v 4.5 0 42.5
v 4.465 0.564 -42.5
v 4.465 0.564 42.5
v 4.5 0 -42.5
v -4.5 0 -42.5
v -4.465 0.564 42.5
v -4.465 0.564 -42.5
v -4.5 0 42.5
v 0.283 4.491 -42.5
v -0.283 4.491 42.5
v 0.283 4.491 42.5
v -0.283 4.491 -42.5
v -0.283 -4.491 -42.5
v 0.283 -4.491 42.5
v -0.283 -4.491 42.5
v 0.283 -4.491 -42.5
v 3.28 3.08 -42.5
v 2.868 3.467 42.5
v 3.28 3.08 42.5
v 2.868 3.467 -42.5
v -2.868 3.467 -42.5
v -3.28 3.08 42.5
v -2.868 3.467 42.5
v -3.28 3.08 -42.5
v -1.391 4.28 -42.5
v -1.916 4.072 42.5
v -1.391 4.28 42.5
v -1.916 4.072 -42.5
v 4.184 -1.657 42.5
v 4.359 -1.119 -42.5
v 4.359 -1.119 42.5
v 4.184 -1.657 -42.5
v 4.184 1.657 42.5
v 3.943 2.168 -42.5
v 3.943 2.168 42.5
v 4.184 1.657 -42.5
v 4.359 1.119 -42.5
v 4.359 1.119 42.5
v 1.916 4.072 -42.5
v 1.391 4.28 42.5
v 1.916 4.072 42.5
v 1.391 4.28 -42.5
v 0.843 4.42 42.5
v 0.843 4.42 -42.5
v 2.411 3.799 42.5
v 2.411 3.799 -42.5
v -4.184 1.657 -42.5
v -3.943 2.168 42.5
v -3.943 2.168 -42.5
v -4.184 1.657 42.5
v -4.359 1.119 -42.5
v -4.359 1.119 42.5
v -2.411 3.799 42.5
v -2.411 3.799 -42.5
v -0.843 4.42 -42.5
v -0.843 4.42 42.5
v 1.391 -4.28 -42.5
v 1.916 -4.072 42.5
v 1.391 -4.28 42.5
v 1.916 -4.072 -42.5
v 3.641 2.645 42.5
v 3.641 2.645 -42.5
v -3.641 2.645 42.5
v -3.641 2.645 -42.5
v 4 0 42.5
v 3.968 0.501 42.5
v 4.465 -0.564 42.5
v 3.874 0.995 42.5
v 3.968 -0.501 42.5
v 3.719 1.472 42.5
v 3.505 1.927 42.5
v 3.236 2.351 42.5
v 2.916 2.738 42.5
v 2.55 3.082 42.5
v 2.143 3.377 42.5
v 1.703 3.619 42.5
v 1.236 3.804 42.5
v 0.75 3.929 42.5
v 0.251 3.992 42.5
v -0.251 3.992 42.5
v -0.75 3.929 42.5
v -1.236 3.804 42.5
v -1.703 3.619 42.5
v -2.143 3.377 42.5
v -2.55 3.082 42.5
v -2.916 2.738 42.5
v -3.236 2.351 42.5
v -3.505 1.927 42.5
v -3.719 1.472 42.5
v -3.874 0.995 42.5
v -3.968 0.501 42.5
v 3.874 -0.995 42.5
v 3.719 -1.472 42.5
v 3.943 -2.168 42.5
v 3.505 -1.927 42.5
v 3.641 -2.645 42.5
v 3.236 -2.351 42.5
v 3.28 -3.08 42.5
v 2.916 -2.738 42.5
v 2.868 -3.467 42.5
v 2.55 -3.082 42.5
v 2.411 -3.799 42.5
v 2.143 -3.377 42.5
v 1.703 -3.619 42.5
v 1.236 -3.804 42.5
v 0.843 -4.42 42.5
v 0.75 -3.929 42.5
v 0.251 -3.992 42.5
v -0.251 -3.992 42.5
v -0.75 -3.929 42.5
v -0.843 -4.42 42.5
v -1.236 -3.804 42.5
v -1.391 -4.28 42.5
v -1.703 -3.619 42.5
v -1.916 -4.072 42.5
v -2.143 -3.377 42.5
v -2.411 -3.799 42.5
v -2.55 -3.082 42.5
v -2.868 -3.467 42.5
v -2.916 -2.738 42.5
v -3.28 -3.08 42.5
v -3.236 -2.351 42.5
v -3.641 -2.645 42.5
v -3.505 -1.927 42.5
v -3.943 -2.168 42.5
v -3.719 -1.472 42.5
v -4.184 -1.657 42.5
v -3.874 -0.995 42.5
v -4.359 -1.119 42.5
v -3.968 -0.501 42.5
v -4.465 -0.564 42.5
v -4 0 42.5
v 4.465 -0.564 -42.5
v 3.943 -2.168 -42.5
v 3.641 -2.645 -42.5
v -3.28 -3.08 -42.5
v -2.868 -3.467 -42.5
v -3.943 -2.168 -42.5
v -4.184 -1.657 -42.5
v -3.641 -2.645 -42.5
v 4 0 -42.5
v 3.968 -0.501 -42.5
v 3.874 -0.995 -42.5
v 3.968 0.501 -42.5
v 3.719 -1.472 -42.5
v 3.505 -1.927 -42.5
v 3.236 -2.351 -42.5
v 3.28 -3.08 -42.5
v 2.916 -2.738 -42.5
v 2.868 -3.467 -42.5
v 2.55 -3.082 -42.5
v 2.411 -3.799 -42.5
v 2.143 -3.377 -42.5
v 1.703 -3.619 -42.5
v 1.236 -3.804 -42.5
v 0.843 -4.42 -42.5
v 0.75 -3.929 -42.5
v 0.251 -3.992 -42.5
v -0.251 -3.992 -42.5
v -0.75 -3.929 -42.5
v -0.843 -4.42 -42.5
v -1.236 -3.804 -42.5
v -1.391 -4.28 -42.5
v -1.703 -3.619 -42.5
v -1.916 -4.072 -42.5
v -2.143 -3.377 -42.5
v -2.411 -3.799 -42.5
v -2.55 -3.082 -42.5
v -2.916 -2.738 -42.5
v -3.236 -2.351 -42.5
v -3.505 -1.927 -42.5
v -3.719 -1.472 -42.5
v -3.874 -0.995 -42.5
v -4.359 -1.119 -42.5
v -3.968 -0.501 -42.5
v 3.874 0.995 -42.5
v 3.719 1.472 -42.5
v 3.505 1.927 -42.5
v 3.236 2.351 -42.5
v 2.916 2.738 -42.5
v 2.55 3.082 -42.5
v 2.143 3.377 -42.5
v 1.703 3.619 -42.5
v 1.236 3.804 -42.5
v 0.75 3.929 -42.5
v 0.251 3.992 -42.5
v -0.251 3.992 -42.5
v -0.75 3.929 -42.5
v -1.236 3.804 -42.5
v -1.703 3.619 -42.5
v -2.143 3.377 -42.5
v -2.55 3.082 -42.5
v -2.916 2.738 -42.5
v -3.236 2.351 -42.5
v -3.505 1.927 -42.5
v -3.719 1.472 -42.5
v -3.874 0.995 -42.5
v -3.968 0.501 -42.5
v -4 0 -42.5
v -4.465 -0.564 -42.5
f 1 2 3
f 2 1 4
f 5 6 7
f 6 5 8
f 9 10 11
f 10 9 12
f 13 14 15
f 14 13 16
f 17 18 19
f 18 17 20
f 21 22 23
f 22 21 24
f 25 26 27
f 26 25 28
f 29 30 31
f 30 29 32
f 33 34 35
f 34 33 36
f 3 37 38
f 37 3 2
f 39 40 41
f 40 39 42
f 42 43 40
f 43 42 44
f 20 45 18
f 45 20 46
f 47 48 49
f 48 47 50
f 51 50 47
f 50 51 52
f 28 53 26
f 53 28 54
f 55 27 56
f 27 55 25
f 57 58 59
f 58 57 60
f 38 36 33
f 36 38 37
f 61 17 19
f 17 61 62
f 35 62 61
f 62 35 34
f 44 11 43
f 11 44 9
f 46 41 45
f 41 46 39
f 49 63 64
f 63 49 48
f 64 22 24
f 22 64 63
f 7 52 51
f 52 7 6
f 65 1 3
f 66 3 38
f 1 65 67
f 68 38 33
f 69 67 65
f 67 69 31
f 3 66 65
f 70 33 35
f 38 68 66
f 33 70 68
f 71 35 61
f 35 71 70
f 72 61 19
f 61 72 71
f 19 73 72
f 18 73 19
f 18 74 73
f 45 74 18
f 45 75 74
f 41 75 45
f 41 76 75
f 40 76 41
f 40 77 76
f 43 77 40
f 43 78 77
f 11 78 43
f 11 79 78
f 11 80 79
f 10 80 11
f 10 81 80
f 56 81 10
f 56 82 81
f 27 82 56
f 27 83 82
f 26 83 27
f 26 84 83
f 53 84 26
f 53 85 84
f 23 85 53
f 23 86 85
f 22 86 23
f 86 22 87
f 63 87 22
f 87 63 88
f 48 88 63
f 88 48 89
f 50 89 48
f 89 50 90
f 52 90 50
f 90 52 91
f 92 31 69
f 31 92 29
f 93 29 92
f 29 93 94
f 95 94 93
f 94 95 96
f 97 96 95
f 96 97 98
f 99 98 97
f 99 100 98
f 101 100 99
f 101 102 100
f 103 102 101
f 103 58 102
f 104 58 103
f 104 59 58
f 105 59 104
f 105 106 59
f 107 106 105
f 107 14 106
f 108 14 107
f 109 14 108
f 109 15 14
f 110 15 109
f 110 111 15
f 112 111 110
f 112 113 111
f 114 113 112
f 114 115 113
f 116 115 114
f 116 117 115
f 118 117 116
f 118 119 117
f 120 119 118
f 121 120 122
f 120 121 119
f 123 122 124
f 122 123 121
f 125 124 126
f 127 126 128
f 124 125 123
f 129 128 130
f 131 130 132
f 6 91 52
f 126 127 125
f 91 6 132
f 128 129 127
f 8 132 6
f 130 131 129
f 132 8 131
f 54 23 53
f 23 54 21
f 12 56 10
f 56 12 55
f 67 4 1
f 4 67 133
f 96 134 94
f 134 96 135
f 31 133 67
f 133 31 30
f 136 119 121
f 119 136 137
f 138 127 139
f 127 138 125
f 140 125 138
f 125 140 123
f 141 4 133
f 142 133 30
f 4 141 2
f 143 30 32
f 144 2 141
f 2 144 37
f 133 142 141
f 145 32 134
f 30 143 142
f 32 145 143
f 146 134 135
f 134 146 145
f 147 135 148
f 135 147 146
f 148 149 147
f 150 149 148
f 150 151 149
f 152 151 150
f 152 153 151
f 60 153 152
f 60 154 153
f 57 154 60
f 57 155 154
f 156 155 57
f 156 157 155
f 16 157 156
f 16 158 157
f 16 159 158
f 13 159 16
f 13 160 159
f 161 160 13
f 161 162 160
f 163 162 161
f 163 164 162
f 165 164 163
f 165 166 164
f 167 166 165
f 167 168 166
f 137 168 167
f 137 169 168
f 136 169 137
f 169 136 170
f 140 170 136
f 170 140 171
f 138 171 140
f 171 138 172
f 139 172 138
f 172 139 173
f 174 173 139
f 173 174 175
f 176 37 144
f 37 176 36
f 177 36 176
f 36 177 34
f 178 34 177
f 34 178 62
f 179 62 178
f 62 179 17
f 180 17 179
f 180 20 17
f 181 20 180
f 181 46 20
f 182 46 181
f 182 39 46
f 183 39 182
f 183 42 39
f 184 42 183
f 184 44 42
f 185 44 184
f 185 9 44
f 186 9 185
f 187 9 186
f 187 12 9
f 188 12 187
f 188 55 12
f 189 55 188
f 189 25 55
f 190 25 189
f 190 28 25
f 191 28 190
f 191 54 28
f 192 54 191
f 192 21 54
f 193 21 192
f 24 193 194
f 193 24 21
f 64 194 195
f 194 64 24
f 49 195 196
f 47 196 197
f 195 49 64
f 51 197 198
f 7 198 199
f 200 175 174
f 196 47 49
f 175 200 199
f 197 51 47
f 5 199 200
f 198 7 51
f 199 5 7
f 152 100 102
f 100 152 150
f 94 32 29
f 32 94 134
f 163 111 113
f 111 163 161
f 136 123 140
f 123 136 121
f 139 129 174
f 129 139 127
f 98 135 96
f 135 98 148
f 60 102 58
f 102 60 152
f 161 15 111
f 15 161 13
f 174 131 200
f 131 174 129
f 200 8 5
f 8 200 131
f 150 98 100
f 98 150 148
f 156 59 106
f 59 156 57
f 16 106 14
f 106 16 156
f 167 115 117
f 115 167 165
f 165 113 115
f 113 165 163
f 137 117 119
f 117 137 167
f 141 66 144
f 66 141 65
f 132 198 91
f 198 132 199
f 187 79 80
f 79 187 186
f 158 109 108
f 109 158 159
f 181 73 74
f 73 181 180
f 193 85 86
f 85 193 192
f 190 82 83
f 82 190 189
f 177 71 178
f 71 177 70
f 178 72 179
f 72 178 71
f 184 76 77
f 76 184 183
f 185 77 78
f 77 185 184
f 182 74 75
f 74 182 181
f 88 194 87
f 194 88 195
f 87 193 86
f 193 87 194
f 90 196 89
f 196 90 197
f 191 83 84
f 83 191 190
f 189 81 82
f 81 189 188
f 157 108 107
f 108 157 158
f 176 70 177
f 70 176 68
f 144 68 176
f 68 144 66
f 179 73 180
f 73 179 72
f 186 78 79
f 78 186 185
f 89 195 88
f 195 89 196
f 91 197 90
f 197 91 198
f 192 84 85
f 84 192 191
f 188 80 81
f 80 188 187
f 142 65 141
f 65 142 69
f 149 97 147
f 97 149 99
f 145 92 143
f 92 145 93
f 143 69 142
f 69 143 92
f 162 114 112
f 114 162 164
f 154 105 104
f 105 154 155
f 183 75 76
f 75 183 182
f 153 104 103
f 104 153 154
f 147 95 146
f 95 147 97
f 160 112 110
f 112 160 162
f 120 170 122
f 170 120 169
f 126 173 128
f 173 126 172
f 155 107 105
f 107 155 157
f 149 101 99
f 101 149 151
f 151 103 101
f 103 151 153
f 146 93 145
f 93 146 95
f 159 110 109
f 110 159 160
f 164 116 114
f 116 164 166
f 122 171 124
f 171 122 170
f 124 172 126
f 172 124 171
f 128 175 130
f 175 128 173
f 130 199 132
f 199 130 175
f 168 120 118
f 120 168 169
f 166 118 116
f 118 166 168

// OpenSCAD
$fn = 50;


difference() {
	union() {
		translate(v = [0, 0, -42.5000000000]) {
			cylinder(h = 85, r = 4.5000000000);
		}
	}
	union() {
		translate(v = [0, 0, -100.0000000000]) {
			cylinder(h = 200, r = 4.0000000000);
		}
	}
}
